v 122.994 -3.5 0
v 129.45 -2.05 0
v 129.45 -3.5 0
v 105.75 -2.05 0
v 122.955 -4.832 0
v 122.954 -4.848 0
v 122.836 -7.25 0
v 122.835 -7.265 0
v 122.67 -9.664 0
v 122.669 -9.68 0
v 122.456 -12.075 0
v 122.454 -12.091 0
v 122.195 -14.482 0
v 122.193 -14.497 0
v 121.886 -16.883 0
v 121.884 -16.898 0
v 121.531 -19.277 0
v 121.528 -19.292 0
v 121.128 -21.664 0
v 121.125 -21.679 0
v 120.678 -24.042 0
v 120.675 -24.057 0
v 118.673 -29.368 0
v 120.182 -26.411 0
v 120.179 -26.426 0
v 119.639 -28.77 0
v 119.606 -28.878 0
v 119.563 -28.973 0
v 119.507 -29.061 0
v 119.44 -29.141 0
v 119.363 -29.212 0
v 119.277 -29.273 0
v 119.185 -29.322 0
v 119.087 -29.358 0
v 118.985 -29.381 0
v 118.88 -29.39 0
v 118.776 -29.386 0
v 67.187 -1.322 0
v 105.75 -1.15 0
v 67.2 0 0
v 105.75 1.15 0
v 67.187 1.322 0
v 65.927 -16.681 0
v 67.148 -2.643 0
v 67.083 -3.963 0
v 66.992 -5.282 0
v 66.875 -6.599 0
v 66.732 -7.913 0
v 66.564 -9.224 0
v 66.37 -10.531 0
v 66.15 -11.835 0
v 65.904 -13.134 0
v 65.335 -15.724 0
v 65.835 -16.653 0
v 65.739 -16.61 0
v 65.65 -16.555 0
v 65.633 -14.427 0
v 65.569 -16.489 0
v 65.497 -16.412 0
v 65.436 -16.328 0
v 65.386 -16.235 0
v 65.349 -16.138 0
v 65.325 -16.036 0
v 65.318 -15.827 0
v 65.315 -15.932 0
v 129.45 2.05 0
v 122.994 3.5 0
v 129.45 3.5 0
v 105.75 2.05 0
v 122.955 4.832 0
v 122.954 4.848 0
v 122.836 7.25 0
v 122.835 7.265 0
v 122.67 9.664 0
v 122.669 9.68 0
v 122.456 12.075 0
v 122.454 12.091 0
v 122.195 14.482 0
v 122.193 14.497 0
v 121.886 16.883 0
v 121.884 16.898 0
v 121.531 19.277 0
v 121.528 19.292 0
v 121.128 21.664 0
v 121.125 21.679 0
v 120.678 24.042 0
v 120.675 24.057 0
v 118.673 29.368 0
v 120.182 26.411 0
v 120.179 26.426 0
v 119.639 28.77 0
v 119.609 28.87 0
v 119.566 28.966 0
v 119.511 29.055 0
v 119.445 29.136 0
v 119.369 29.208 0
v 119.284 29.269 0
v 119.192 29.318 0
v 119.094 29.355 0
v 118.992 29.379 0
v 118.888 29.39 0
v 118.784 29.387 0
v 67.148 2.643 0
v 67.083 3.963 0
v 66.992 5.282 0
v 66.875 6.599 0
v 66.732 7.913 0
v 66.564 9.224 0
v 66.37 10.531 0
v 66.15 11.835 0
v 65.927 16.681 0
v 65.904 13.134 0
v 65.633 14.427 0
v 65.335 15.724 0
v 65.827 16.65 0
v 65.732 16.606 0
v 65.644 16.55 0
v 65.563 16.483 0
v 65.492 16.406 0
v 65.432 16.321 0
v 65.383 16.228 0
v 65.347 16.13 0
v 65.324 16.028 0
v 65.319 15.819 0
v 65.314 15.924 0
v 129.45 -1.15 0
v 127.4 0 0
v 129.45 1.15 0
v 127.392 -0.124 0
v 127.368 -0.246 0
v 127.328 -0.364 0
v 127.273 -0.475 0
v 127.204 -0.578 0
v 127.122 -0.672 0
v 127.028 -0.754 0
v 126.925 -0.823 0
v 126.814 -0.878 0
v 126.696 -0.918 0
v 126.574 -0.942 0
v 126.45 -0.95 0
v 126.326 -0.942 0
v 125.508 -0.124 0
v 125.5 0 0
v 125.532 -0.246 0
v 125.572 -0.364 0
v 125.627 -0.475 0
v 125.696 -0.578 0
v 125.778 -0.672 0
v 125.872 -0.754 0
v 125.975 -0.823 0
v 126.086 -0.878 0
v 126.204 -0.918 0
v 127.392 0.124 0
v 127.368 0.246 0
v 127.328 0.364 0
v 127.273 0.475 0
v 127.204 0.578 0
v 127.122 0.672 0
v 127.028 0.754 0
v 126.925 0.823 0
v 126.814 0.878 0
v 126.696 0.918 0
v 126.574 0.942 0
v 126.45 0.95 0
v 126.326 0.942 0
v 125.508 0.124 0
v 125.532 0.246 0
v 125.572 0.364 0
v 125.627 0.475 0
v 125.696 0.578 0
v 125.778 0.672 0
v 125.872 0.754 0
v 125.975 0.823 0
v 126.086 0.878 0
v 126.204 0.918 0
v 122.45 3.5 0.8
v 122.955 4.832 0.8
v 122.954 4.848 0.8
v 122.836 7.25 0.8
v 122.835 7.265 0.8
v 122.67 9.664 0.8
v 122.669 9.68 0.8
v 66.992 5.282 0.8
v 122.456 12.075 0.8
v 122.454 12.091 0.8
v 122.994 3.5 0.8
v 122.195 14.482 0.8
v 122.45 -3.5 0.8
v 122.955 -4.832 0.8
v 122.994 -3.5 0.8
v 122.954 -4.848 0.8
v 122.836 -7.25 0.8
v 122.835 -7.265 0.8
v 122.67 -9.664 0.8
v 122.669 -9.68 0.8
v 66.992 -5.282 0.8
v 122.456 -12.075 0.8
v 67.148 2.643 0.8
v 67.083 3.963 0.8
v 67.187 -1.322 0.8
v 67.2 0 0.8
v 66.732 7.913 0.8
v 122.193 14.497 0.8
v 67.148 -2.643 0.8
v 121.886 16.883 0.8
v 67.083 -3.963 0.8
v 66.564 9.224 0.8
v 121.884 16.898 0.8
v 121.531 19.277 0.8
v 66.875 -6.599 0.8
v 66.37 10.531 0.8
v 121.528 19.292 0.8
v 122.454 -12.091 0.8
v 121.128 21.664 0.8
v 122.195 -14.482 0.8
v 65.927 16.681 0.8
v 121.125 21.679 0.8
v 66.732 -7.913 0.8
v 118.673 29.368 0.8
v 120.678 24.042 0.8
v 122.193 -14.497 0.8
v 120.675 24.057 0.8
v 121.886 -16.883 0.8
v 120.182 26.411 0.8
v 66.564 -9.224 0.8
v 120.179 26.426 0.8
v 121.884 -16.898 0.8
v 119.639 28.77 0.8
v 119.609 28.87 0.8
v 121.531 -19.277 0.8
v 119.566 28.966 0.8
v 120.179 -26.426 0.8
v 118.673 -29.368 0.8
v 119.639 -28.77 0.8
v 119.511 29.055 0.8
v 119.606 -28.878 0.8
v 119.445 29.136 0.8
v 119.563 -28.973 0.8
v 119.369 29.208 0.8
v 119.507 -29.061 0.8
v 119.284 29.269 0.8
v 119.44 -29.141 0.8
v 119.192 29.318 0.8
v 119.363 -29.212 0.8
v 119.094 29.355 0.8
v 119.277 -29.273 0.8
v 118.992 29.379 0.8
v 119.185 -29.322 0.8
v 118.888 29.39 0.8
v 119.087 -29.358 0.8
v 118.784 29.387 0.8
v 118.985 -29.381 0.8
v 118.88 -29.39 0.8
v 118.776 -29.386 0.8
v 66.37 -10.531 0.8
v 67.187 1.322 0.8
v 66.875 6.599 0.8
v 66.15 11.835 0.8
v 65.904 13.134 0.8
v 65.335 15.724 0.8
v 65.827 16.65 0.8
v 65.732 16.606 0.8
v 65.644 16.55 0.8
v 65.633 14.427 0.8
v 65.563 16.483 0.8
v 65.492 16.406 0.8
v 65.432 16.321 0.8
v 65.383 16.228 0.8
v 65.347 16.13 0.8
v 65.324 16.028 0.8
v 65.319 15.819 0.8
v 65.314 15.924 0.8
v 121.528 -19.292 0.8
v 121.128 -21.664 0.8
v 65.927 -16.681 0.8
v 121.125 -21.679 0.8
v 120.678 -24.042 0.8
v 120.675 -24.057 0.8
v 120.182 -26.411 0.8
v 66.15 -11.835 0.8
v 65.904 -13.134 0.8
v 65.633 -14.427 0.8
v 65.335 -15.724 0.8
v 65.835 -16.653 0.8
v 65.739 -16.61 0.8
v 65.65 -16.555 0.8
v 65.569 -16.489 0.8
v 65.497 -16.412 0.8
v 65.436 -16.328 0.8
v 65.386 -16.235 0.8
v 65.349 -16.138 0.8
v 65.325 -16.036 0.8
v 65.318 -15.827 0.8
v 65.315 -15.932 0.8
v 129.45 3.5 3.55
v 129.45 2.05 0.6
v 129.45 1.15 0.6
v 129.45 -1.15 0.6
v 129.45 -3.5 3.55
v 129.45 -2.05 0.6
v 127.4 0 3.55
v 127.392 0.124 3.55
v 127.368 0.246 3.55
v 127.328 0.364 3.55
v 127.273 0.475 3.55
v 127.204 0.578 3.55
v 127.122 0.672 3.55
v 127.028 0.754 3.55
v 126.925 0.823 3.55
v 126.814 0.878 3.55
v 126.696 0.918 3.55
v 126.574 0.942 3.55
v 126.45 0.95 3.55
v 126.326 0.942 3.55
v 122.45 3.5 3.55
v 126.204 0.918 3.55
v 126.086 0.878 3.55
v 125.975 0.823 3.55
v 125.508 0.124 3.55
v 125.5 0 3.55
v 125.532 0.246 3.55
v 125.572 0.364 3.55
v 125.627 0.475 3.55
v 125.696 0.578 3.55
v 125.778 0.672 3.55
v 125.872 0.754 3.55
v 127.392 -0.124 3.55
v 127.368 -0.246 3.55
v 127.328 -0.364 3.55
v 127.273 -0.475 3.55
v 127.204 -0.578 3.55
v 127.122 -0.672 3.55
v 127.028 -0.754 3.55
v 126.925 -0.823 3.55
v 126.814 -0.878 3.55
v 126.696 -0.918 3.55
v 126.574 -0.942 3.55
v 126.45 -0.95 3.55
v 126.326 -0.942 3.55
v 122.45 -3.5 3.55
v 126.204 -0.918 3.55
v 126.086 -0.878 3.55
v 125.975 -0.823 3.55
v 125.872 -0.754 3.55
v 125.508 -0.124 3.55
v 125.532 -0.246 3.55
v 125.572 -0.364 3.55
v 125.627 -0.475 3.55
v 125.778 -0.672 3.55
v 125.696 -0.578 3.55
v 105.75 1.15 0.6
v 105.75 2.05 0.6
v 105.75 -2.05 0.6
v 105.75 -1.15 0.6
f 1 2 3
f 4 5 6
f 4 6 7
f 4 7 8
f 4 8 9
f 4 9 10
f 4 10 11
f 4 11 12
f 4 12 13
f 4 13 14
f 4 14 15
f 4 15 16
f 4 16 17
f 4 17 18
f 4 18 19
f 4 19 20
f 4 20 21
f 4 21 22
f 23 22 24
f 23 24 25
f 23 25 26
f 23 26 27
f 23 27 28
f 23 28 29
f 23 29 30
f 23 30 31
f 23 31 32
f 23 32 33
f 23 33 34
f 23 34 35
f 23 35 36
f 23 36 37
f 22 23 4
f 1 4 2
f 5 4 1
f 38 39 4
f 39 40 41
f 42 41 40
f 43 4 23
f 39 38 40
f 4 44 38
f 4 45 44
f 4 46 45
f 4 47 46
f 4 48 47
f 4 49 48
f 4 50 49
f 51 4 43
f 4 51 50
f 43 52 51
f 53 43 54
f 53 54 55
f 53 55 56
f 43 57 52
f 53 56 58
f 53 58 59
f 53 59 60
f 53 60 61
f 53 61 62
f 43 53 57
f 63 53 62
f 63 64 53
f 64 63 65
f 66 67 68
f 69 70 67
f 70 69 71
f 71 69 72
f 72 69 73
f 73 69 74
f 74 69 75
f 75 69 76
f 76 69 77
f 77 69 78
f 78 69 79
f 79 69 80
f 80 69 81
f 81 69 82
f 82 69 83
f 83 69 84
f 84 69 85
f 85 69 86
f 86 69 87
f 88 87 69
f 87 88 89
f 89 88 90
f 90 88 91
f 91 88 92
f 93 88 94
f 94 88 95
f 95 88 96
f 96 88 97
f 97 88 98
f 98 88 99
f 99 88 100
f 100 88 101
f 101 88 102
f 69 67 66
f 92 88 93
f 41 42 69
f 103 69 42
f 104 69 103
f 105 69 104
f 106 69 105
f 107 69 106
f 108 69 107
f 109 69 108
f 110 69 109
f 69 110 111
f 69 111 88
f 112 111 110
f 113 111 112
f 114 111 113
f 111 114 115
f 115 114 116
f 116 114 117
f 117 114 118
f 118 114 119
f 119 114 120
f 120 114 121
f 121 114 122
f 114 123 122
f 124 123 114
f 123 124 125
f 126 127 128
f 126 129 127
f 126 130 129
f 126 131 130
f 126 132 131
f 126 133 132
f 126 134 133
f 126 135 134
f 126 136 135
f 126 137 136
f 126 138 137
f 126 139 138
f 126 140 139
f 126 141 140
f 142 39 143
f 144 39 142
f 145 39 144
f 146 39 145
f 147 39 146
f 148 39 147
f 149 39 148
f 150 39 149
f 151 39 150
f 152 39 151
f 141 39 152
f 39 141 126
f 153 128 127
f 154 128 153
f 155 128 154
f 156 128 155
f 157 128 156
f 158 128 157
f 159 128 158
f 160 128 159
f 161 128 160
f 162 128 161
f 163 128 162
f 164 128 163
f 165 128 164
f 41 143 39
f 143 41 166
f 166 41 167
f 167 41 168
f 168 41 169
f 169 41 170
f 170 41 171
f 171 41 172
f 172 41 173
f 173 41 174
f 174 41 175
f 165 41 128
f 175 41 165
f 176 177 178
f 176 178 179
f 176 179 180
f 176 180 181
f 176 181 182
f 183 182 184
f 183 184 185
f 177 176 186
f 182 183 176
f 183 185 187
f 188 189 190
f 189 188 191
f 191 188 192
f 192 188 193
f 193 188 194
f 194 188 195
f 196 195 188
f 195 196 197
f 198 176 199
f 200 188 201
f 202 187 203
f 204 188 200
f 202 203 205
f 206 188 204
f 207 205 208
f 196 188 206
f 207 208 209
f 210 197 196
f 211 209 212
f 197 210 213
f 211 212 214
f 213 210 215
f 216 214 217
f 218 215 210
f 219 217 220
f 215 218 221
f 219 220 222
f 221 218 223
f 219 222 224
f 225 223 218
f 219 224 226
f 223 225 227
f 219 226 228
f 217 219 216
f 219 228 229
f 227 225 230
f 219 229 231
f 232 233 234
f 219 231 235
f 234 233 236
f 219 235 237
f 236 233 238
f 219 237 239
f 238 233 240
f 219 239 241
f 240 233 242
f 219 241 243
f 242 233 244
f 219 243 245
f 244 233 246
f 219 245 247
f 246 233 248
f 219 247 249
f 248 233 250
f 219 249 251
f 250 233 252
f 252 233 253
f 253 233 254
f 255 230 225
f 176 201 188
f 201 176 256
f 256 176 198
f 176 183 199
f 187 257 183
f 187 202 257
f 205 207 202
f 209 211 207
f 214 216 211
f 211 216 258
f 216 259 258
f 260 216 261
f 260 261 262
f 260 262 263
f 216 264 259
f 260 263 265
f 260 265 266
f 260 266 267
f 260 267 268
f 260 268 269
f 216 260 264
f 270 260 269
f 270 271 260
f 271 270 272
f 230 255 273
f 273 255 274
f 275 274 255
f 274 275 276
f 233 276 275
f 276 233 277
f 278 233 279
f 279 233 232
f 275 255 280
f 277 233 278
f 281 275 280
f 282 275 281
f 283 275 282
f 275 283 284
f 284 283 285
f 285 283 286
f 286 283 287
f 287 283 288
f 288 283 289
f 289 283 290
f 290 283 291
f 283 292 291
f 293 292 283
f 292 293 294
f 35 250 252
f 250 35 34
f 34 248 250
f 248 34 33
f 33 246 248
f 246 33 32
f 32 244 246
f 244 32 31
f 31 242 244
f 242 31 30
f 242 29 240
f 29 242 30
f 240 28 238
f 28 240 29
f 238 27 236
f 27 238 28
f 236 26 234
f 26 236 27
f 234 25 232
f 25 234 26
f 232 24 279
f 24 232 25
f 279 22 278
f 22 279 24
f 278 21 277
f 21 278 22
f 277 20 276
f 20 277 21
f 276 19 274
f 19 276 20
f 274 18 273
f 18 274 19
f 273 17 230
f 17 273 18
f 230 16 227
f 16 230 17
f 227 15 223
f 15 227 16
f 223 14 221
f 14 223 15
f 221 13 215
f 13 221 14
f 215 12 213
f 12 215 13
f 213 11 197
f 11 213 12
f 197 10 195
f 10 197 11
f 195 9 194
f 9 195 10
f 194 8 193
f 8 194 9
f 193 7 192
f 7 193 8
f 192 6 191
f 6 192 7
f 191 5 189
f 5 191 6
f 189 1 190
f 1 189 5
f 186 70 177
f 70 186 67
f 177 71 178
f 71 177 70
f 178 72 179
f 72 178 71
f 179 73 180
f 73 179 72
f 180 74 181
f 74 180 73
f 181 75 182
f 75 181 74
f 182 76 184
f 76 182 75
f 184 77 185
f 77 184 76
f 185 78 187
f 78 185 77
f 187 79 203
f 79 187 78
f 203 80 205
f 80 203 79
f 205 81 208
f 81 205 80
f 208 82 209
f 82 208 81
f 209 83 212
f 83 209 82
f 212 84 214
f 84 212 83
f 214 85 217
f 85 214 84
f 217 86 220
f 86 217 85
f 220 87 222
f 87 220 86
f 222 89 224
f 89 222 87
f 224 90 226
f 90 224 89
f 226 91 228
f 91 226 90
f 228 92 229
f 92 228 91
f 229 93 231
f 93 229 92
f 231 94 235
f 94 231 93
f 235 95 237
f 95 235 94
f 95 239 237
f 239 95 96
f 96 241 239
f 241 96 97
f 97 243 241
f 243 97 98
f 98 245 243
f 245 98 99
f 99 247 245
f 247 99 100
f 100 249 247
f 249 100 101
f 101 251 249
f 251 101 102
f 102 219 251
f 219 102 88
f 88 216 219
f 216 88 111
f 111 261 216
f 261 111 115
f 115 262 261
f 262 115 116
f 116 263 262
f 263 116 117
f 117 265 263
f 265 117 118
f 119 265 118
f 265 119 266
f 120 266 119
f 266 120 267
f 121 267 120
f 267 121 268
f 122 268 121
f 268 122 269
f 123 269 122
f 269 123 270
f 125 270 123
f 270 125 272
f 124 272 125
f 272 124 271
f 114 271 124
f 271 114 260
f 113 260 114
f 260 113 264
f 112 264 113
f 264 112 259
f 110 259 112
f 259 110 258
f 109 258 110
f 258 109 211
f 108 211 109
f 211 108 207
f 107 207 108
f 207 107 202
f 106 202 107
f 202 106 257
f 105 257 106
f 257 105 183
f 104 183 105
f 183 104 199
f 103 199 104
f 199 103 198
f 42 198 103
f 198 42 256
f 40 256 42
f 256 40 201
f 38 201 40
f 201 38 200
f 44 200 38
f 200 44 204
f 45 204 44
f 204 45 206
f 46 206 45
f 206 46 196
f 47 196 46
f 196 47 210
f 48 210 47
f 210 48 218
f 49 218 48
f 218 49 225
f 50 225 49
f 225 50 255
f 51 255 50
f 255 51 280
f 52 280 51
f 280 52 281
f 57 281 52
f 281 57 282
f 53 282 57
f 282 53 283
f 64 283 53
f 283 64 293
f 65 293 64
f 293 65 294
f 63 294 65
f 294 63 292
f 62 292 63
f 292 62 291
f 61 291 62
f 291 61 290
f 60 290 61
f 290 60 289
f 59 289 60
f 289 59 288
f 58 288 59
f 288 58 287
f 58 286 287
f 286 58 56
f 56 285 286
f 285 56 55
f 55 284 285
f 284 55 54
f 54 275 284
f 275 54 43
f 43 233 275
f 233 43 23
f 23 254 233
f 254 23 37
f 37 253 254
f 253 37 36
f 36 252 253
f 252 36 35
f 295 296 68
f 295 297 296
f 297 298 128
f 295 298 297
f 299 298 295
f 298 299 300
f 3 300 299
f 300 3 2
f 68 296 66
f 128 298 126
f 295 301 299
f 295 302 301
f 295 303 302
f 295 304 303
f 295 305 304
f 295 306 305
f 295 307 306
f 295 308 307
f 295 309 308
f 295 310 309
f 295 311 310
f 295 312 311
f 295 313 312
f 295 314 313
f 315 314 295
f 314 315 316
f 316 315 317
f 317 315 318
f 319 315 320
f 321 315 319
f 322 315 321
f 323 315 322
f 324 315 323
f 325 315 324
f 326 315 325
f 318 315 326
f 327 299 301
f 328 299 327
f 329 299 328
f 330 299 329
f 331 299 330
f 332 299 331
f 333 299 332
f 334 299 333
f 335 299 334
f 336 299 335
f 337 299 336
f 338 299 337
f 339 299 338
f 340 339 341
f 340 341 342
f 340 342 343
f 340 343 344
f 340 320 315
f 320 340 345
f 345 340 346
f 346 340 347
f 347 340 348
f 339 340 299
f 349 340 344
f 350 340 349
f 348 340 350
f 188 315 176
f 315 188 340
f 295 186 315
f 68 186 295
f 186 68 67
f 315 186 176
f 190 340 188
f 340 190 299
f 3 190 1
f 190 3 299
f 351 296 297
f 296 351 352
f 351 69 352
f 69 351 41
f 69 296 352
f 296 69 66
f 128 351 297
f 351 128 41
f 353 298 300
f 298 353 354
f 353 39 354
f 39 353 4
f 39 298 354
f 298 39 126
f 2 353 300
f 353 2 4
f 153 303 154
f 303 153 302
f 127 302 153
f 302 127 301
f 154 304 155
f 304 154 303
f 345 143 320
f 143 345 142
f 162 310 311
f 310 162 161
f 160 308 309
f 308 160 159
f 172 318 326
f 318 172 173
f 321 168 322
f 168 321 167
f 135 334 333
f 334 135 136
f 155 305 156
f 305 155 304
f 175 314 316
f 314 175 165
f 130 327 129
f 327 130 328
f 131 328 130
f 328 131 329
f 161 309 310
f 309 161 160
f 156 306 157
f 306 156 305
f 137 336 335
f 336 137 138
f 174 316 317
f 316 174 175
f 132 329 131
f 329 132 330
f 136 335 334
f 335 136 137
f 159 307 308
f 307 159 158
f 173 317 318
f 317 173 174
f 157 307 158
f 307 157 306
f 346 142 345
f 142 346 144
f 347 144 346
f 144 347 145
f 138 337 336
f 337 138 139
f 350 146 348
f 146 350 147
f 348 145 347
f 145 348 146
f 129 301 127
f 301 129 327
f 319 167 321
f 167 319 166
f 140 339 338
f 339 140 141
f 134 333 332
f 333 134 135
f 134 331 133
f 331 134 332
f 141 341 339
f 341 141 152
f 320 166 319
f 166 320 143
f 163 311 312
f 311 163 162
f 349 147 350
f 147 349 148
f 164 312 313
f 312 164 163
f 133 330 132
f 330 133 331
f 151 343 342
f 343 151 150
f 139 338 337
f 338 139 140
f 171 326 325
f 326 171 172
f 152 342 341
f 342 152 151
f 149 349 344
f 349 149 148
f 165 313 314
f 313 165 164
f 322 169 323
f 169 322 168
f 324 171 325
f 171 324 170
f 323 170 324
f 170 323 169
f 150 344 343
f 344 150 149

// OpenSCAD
// Gen-DF — bobbin LID (top flange + locating tab). Print x12, flange face DOWN on the bed.
// CA-glue onto the hub top BEFORE winding. Tab = lap joint into the stator tab pocket; 1.75 mm filament
// pin through pin hole + stator ledge, trim flush. Lead slots carry both leads flush.
include <parameters.scad>;
$fn = 48;
module sector_2d(r_in, r_out, ang) {
    polygon([
        for (a = [-ang/2 : ang/24 : ang/2]) [r_in*cos(a), r_in*sin(a)],
        for (a = [ang/2 : -ang/24 : -ang/2]) [r_out*cos(a), r_out*sin(a)]
    ]);
}
module footprint_2d() { offset(r=wall) sector_2d(coil_id_r, coil_od_r, span_deg); }
module hub_2d()       { offset(delta=-coil_core_inset) sector_2d(coil_id_r, coil_od_r, span_deg); }

difference() {
    union() {
        linear_extrude(flange_t) footprint_2d();
        translate([coil_od_r + 0.2, -tab_w/2, 0]) cube([tab_len, tab_w, tab_h]);
    }
    translate([coil_mount_r, 0, -0.1]) cylinder(d=pin_d, h=tab_h + 1);
    for (y = [lead_y, -lead_y])
        translate([coil_od_r - coil_core_inset - 0.5, y - lead_slot_w/2, -0.1])
            cube([coil_core_inset + tab_len + 2, lead_slot_w, lead_groove_d + 0.1]);
}
